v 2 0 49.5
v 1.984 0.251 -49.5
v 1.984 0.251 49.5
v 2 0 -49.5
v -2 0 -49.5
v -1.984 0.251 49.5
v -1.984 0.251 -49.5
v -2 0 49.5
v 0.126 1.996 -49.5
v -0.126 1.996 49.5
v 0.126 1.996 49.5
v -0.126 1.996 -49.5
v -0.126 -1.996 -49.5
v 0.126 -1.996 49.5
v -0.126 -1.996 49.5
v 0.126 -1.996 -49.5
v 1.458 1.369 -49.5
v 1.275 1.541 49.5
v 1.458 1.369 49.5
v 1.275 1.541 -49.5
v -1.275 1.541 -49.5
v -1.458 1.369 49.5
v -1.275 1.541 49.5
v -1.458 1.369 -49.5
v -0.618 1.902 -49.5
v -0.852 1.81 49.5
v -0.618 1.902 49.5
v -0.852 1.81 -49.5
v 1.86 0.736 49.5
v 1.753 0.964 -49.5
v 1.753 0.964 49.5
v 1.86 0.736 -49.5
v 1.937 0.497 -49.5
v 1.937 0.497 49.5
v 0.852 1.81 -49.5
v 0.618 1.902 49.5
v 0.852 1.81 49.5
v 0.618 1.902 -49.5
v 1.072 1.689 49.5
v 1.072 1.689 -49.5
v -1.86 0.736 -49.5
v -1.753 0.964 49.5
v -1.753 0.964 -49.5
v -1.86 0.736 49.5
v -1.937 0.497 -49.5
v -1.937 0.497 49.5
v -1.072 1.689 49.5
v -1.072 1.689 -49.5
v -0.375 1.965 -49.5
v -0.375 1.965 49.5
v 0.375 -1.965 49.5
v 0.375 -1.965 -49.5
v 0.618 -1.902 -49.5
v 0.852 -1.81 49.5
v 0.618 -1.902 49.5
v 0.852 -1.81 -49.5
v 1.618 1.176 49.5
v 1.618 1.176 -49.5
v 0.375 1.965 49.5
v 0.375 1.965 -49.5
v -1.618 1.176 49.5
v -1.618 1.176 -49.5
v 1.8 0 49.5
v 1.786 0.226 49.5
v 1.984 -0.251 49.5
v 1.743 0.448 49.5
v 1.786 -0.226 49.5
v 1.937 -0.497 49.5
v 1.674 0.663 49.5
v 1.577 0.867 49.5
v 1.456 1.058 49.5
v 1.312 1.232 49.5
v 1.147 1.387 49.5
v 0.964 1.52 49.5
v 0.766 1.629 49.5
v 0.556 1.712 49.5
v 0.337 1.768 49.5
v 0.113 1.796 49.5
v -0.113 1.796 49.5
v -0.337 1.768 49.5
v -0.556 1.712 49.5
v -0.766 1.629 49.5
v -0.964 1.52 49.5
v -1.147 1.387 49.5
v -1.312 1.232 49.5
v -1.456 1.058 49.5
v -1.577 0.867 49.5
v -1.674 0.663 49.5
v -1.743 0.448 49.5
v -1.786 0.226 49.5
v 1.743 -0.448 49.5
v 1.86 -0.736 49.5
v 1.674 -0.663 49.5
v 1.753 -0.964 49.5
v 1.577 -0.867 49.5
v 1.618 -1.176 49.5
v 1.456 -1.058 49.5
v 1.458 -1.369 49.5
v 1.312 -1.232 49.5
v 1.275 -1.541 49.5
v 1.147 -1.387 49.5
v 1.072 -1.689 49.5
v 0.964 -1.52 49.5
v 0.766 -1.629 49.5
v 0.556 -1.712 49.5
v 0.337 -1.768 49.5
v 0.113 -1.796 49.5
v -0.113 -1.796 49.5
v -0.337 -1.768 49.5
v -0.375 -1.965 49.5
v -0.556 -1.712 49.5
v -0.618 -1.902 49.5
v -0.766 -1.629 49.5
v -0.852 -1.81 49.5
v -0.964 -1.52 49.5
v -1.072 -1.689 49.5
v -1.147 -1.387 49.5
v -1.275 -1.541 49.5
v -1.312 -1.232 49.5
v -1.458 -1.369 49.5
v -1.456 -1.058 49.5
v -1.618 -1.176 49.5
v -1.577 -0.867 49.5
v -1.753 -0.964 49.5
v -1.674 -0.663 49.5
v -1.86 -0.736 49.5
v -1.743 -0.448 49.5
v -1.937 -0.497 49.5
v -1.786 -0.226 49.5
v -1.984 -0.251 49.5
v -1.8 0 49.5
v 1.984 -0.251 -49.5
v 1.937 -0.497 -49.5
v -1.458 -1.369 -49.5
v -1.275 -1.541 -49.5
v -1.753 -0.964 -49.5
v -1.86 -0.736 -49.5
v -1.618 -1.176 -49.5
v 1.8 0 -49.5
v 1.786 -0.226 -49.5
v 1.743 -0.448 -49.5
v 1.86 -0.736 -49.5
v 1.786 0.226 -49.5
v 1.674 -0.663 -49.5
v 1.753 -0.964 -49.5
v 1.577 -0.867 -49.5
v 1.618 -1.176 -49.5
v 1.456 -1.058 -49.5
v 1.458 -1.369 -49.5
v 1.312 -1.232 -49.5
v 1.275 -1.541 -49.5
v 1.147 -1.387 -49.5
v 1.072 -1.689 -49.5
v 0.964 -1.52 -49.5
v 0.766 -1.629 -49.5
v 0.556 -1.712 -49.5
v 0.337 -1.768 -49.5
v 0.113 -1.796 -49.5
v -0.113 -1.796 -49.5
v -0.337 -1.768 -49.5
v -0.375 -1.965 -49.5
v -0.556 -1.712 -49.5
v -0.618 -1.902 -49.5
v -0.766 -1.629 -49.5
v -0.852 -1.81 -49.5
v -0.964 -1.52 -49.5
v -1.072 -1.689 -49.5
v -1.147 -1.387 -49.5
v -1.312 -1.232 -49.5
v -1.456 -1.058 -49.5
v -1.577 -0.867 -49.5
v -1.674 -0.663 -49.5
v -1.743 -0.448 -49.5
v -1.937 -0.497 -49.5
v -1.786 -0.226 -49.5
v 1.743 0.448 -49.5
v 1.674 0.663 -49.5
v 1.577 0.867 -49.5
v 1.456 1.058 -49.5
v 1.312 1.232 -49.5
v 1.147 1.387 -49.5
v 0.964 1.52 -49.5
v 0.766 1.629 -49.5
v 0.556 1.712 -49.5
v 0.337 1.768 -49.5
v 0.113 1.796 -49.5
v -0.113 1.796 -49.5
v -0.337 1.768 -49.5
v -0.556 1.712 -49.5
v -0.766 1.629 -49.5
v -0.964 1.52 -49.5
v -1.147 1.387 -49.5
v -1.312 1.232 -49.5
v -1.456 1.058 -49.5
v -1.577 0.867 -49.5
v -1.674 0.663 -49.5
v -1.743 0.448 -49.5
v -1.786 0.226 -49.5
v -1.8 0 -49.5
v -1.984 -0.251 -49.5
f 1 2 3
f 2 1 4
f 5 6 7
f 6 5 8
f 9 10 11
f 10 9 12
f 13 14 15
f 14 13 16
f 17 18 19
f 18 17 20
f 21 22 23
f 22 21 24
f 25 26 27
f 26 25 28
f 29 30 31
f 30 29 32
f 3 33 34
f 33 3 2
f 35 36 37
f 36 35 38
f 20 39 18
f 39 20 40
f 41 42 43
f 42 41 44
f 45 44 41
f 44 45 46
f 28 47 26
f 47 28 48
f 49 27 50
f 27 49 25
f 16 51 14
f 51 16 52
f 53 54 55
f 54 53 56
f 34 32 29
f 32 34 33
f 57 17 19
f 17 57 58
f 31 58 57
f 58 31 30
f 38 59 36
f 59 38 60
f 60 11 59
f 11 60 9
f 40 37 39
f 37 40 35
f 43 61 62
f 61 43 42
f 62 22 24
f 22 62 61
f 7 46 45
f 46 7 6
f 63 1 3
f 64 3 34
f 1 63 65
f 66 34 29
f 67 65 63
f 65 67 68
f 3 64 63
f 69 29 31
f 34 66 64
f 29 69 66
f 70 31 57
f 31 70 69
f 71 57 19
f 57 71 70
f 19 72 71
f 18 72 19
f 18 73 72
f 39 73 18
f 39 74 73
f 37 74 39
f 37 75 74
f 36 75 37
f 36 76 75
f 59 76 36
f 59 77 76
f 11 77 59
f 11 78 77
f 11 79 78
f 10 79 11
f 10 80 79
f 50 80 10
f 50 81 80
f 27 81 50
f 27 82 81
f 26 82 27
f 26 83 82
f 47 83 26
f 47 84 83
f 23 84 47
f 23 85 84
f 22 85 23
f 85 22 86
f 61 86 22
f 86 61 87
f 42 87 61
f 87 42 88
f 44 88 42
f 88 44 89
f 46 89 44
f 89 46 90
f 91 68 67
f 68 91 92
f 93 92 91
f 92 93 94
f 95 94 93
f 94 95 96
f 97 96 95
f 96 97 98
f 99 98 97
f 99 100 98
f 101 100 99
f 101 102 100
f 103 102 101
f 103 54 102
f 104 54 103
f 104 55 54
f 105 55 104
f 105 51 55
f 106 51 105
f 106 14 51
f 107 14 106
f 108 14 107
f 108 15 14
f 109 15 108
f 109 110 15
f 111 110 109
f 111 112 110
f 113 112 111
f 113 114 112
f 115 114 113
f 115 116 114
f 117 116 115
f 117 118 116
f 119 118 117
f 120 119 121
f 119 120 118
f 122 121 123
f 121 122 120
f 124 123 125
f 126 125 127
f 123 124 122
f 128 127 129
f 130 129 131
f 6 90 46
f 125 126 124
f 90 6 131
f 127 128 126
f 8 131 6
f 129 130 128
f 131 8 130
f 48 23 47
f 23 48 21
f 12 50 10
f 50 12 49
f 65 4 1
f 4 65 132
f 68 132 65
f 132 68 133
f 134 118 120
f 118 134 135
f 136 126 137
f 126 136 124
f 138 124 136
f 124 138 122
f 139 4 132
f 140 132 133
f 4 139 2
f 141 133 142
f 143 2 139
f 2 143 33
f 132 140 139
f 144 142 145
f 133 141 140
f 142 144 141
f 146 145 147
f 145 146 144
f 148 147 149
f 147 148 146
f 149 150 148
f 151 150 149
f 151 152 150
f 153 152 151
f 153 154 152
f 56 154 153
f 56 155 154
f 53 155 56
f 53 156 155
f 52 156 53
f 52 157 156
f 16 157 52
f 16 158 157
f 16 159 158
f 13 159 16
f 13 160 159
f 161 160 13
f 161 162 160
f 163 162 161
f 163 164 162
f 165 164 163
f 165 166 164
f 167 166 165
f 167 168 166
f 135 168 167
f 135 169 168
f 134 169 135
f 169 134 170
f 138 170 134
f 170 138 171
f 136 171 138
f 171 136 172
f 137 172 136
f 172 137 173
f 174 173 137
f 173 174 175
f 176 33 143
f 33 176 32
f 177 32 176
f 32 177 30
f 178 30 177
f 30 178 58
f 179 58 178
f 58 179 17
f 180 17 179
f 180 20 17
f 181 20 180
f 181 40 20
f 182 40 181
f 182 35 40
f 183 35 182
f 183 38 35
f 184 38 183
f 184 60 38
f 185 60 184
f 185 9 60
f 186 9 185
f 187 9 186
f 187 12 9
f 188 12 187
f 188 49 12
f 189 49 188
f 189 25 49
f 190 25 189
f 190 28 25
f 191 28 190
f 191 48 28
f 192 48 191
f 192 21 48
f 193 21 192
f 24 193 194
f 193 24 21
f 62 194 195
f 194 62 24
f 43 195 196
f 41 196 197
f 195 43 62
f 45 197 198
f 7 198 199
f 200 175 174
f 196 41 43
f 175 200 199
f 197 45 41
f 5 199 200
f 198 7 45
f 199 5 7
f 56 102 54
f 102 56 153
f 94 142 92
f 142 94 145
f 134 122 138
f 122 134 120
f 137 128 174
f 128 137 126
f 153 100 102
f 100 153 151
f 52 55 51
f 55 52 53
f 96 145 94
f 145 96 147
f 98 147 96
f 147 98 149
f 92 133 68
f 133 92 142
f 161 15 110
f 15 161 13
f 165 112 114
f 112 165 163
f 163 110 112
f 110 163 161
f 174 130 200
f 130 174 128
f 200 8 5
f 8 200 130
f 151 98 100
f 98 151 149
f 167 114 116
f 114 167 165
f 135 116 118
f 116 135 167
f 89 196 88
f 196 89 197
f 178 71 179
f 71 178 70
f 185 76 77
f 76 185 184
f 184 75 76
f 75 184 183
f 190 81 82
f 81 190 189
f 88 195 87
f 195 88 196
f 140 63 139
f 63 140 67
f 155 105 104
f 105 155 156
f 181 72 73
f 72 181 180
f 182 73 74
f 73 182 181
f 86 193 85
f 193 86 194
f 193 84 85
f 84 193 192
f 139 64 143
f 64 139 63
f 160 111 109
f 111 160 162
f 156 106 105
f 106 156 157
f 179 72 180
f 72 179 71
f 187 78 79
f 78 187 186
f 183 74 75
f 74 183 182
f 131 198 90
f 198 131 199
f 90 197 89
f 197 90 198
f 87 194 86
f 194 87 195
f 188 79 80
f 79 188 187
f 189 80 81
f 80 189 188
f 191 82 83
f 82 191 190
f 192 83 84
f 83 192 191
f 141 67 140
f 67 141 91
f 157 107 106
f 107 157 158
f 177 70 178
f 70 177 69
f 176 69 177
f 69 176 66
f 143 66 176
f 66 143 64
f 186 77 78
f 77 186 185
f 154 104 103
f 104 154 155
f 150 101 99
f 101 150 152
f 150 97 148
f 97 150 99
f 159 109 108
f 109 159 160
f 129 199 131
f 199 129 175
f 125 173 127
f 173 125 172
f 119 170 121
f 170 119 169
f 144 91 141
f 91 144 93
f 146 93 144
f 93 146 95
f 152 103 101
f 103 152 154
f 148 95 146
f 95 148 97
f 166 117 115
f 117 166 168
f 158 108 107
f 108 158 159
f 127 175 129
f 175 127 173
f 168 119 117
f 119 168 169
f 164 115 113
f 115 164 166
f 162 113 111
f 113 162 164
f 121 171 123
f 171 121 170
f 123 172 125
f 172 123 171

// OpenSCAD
$fn = 50;


difference() {
	union() {
		translate(v = [0, 0, -49.5000000000]) {
			cylinder(h = 99, r = 2.0000000000);
		}
	}
	union() {
		translate(v = [0, 0, -100.0000000000]) {
			cylinder(h = 200, r = 1.8000000000);
		}
	}
}
